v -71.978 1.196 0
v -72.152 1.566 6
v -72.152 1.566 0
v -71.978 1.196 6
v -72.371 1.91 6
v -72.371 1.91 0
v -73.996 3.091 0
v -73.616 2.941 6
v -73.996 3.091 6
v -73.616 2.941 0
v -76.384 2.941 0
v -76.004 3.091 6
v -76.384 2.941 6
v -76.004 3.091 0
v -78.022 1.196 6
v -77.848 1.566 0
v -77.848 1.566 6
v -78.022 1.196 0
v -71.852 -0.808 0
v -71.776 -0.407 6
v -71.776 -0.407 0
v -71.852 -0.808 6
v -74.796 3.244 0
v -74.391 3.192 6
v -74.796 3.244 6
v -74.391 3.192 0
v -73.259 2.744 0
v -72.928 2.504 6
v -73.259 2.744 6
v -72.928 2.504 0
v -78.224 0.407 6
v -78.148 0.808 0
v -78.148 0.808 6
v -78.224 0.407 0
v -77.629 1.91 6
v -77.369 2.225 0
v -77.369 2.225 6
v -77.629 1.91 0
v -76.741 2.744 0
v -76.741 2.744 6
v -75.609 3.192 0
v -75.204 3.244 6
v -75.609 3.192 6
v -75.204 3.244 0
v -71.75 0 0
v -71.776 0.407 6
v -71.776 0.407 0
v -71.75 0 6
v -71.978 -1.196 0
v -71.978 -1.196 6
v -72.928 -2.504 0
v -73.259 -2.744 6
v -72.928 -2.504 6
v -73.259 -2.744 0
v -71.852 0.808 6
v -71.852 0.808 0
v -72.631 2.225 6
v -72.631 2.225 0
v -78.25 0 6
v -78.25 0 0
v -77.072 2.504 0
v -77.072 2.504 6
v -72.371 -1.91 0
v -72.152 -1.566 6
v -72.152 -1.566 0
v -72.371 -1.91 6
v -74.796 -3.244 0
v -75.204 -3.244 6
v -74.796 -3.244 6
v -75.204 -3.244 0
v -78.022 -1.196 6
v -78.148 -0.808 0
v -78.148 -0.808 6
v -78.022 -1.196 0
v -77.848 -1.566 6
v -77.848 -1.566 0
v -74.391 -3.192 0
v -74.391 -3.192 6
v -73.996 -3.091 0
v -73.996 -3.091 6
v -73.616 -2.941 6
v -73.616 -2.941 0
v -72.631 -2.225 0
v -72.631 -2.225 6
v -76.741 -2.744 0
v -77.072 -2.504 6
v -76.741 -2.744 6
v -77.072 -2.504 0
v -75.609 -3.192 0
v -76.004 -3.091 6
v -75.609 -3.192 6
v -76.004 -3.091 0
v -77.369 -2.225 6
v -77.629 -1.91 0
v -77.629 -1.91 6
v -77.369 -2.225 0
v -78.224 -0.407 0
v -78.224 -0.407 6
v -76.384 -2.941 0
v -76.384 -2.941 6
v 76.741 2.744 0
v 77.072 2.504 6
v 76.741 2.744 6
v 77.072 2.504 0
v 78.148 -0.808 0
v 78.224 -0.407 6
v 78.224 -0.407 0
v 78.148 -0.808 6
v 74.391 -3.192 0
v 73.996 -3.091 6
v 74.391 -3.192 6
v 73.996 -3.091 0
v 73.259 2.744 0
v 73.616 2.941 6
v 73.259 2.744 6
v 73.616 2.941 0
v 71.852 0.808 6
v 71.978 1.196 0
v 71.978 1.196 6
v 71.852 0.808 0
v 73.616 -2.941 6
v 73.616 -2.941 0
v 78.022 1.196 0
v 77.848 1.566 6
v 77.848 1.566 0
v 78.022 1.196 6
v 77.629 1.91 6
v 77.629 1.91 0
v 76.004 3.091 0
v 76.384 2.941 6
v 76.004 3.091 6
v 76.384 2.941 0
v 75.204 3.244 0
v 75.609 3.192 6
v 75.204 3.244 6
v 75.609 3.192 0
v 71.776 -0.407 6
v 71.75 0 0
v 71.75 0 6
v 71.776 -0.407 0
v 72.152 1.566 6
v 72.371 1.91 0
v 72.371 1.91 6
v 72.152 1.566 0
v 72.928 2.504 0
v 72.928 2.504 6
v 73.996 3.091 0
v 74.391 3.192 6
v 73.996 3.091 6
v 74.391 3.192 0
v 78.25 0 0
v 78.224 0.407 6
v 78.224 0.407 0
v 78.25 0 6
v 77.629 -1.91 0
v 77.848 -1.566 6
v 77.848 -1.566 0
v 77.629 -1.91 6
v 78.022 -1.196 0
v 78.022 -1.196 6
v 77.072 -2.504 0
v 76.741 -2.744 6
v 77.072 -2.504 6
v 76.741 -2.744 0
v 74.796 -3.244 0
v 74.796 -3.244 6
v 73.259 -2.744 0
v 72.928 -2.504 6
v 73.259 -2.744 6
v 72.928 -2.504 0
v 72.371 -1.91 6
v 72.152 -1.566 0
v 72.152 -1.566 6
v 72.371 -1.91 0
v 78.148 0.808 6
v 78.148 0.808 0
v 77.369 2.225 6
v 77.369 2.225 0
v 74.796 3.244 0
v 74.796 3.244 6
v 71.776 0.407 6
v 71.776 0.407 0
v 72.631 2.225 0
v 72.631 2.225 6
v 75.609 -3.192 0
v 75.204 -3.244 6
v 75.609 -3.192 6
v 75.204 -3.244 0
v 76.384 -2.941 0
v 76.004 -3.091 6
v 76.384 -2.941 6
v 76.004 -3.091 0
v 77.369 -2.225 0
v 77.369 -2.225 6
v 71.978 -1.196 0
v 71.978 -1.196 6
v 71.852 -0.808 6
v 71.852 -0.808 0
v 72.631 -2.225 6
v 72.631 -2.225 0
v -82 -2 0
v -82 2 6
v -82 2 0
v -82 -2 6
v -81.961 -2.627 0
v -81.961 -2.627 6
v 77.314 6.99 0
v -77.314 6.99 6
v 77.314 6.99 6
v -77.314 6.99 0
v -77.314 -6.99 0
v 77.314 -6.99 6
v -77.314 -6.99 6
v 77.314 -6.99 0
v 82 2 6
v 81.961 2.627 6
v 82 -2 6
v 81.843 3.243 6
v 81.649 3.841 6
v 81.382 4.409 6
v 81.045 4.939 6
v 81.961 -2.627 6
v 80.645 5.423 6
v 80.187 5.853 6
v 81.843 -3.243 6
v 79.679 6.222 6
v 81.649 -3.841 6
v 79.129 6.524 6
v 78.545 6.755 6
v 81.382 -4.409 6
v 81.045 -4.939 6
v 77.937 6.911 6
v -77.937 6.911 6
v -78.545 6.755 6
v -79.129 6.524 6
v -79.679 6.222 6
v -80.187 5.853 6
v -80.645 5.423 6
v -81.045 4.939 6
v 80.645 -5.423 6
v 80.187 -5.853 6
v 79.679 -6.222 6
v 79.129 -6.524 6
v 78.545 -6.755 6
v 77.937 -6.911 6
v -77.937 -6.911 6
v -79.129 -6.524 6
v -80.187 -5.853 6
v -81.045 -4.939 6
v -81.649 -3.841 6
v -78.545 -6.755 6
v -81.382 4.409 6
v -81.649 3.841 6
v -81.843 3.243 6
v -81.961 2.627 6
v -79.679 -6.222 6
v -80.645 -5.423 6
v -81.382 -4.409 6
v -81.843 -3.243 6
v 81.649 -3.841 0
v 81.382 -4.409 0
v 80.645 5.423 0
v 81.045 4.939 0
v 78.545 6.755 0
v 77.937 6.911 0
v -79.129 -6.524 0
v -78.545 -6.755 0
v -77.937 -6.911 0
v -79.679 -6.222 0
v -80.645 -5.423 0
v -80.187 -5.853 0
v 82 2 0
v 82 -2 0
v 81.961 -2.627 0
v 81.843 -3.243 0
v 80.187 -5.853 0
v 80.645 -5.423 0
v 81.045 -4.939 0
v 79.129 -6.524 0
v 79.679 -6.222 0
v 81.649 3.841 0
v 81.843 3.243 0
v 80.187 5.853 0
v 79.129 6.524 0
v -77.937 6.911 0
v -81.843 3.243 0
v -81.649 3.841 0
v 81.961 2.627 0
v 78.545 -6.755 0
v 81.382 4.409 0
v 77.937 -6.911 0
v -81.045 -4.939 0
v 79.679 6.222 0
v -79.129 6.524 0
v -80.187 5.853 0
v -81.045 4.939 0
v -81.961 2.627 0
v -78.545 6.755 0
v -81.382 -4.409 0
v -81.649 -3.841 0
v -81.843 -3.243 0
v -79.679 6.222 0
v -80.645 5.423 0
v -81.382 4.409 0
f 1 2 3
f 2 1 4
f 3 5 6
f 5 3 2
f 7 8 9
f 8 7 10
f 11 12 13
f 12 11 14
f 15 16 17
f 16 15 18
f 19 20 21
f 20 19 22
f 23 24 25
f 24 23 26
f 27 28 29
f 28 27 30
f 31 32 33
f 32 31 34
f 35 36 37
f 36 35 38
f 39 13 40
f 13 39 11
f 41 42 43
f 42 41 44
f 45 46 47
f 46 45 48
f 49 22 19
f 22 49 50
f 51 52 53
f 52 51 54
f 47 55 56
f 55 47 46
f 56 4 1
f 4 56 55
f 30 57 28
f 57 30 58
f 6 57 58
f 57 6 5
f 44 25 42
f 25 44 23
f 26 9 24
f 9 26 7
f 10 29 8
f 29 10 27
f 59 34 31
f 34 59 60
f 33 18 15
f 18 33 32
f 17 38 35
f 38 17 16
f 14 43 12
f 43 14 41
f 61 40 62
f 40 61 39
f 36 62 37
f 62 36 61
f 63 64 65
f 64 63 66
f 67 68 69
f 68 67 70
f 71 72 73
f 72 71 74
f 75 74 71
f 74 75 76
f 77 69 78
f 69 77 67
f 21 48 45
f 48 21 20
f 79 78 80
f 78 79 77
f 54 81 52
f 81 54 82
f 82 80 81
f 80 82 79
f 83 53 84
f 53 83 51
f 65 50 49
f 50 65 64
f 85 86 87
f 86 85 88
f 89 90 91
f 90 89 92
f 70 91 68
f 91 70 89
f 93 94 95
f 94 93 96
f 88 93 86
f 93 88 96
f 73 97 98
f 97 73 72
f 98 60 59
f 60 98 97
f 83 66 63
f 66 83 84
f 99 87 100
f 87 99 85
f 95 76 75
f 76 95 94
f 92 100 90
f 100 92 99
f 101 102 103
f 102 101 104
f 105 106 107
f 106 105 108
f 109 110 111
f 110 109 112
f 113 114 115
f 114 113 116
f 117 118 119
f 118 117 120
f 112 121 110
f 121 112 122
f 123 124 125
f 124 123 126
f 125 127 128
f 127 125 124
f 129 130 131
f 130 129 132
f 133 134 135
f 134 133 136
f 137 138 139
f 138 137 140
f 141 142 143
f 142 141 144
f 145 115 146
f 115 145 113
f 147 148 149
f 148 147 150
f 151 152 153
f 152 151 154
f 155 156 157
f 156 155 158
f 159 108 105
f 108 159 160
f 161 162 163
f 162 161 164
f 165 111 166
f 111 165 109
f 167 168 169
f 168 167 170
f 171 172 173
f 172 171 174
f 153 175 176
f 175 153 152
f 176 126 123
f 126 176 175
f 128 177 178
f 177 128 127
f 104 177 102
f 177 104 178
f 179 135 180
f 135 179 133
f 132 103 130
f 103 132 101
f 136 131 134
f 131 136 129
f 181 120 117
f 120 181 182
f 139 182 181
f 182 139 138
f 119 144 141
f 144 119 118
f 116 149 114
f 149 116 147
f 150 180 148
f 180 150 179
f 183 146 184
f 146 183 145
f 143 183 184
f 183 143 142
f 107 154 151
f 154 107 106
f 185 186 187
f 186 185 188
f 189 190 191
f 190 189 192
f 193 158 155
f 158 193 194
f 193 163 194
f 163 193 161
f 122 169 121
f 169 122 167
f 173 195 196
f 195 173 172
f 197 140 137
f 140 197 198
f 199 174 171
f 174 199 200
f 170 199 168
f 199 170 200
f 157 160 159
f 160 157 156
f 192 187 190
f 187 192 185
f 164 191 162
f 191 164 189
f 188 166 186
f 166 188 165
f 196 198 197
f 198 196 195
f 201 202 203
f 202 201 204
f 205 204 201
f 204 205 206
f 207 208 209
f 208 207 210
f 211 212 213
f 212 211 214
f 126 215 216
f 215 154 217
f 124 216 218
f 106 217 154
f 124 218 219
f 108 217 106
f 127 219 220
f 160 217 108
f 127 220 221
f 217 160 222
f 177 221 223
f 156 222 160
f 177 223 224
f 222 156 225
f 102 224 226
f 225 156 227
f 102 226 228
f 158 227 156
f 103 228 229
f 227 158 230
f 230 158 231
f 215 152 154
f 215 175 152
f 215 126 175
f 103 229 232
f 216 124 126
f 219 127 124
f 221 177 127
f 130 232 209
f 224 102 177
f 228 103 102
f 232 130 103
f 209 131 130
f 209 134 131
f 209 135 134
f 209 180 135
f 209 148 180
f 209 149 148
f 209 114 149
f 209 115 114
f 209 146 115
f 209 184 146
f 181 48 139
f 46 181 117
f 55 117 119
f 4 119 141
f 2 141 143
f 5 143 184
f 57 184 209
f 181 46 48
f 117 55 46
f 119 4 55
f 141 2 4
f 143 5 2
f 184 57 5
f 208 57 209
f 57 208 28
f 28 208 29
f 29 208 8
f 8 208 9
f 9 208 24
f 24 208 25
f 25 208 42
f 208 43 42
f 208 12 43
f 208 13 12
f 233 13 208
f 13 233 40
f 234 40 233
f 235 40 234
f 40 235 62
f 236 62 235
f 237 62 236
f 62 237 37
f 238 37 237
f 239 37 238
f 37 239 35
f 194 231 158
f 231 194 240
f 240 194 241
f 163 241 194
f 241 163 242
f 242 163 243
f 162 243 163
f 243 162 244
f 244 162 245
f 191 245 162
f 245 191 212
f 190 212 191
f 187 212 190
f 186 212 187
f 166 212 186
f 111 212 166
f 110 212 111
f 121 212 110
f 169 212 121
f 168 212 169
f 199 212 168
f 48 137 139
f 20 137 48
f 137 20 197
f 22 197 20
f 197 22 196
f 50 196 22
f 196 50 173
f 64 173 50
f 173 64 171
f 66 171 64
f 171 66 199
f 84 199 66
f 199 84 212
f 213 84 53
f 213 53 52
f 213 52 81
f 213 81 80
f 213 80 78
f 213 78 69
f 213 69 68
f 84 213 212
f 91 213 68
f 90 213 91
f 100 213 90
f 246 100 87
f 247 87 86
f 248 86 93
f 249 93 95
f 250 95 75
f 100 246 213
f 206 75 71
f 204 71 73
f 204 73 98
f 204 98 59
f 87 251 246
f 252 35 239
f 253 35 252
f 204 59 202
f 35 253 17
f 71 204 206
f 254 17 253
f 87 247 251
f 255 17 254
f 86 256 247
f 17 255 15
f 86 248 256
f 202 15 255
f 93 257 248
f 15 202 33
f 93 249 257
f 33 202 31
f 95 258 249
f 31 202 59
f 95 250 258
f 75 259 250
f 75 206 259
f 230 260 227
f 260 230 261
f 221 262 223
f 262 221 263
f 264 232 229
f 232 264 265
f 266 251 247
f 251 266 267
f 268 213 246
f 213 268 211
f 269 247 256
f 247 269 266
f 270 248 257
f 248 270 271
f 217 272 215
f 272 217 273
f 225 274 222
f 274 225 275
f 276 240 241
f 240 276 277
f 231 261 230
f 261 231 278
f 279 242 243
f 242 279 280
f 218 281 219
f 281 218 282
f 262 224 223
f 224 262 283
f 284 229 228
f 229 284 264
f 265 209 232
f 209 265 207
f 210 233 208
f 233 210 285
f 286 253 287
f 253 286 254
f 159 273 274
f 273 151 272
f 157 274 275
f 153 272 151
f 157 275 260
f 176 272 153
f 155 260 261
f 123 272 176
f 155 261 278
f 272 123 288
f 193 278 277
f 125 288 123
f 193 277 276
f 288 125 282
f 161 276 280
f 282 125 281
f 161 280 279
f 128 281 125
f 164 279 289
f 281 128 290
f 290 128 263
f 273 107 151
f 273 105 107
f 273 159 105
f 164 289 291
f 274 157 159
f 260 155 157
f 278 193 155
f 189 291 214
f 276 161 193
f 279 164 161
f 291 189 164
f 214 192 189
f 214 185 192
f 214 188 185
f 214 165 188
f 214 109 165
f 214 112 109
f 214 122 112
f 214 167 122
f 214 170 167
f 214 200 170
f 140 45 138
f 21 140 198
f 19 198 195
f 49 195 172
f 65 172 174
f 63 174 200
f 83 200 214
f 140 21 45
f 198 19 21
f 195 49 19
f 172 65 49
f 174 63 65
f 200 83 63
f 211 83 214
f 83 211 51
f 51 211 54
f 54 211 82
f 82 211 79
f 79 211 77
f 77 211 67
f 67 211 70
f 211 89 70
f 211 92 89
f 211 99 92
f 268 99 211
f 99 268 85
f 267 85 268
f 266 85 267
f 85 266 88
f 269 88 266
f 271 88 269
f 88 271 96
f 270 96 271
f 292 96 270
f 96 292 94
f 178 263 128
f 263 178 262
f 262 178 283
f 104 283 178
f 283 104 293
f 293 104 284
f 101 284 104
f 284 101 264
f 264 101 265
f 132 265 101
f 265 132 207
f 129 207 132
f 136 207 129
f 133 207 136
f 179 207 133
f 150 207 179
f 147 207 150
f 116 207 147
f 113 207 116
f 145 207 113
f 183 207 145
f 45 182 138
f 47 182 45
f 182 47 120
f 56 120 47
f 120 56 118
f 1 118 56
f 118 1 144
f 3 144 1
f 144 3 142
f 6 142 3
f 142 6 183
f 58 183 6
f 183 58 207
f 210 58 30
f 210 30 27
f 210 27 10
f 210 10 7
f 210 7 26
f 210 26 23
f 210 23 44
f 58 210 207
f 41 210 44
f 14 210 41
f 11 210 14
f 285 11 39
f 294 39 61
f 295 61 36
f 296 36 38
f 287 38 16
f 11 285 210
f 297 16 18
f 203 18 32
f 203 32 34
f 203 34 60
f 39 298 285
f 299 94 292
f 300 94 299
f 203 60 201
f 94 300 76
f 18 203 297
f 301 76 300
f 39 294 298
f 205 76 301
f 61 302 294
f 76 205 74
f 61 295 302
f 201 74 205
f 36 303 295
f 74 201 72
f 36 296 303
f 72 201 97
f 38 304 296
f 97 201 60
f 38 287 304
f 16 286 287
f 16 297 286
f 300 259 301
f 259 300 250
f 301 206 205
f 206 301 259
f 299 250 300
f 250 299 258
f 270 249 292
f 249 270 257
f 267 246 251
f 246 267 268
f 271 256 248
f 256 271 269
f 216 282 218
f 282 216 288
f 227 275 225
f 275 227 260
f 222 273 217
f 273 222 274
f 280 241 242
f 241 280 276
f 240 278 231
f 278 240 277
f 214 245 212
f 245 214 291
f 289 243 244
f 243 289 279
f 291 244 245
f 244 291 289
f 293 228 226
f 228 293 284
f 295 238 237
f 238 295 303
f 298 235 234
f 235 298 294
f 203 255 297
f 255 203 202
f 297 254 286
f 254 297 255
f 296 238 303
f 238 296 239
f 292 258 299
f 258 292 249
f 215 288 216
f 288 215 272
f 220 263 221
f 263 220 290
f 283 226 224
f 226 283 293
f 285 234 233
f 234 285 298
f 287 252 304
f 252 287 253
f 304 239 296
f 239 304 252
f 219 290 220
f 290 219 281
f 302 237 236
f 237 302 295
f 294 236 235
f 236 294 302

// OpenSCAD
$fn = 50;


difference() {
	union() {
		hull() {
			translate(v = [-77.0000000000, 2.0000000000, 0]) {
				cylinder(h = 6, r = 5);
			}
			translate(v = [77.0000000000, 2.0000000000, 0]) {
				cylinder(h = 6, r = 5);
			}
			translate(v = [-77.0000000000, -2.0000000000, 0]) {
				cylinder(h = 6, r = 5);
			}
			translate(v = [77.0000000000, -2.0000000000, 0]) {
				cylinder(h = 6, r = 5);
			}
		}
	}
	union() {
		translate(v = [-75.0000000000, 0.0000000000, -100.0000000000]) {
			cylinder(h = 200, r = 3.2500000000);
		}
		translate(v = [-75.0000000000, 0.0000000000, -100.0000000000]) {
			cylinder(h = 200, r = 3.2500000000);
		}
		translate(v = [75.0000000000, 0.0000000000, -100.0000000000]) {
			cylinder(h = 200, r = 3.2500000000);
		}
		translate(v = [75.0000000000, 0.0000000000, -100.0000000000]) {
			cylinder(h = 200, r = 3.2500000000);
		}
	}
}
